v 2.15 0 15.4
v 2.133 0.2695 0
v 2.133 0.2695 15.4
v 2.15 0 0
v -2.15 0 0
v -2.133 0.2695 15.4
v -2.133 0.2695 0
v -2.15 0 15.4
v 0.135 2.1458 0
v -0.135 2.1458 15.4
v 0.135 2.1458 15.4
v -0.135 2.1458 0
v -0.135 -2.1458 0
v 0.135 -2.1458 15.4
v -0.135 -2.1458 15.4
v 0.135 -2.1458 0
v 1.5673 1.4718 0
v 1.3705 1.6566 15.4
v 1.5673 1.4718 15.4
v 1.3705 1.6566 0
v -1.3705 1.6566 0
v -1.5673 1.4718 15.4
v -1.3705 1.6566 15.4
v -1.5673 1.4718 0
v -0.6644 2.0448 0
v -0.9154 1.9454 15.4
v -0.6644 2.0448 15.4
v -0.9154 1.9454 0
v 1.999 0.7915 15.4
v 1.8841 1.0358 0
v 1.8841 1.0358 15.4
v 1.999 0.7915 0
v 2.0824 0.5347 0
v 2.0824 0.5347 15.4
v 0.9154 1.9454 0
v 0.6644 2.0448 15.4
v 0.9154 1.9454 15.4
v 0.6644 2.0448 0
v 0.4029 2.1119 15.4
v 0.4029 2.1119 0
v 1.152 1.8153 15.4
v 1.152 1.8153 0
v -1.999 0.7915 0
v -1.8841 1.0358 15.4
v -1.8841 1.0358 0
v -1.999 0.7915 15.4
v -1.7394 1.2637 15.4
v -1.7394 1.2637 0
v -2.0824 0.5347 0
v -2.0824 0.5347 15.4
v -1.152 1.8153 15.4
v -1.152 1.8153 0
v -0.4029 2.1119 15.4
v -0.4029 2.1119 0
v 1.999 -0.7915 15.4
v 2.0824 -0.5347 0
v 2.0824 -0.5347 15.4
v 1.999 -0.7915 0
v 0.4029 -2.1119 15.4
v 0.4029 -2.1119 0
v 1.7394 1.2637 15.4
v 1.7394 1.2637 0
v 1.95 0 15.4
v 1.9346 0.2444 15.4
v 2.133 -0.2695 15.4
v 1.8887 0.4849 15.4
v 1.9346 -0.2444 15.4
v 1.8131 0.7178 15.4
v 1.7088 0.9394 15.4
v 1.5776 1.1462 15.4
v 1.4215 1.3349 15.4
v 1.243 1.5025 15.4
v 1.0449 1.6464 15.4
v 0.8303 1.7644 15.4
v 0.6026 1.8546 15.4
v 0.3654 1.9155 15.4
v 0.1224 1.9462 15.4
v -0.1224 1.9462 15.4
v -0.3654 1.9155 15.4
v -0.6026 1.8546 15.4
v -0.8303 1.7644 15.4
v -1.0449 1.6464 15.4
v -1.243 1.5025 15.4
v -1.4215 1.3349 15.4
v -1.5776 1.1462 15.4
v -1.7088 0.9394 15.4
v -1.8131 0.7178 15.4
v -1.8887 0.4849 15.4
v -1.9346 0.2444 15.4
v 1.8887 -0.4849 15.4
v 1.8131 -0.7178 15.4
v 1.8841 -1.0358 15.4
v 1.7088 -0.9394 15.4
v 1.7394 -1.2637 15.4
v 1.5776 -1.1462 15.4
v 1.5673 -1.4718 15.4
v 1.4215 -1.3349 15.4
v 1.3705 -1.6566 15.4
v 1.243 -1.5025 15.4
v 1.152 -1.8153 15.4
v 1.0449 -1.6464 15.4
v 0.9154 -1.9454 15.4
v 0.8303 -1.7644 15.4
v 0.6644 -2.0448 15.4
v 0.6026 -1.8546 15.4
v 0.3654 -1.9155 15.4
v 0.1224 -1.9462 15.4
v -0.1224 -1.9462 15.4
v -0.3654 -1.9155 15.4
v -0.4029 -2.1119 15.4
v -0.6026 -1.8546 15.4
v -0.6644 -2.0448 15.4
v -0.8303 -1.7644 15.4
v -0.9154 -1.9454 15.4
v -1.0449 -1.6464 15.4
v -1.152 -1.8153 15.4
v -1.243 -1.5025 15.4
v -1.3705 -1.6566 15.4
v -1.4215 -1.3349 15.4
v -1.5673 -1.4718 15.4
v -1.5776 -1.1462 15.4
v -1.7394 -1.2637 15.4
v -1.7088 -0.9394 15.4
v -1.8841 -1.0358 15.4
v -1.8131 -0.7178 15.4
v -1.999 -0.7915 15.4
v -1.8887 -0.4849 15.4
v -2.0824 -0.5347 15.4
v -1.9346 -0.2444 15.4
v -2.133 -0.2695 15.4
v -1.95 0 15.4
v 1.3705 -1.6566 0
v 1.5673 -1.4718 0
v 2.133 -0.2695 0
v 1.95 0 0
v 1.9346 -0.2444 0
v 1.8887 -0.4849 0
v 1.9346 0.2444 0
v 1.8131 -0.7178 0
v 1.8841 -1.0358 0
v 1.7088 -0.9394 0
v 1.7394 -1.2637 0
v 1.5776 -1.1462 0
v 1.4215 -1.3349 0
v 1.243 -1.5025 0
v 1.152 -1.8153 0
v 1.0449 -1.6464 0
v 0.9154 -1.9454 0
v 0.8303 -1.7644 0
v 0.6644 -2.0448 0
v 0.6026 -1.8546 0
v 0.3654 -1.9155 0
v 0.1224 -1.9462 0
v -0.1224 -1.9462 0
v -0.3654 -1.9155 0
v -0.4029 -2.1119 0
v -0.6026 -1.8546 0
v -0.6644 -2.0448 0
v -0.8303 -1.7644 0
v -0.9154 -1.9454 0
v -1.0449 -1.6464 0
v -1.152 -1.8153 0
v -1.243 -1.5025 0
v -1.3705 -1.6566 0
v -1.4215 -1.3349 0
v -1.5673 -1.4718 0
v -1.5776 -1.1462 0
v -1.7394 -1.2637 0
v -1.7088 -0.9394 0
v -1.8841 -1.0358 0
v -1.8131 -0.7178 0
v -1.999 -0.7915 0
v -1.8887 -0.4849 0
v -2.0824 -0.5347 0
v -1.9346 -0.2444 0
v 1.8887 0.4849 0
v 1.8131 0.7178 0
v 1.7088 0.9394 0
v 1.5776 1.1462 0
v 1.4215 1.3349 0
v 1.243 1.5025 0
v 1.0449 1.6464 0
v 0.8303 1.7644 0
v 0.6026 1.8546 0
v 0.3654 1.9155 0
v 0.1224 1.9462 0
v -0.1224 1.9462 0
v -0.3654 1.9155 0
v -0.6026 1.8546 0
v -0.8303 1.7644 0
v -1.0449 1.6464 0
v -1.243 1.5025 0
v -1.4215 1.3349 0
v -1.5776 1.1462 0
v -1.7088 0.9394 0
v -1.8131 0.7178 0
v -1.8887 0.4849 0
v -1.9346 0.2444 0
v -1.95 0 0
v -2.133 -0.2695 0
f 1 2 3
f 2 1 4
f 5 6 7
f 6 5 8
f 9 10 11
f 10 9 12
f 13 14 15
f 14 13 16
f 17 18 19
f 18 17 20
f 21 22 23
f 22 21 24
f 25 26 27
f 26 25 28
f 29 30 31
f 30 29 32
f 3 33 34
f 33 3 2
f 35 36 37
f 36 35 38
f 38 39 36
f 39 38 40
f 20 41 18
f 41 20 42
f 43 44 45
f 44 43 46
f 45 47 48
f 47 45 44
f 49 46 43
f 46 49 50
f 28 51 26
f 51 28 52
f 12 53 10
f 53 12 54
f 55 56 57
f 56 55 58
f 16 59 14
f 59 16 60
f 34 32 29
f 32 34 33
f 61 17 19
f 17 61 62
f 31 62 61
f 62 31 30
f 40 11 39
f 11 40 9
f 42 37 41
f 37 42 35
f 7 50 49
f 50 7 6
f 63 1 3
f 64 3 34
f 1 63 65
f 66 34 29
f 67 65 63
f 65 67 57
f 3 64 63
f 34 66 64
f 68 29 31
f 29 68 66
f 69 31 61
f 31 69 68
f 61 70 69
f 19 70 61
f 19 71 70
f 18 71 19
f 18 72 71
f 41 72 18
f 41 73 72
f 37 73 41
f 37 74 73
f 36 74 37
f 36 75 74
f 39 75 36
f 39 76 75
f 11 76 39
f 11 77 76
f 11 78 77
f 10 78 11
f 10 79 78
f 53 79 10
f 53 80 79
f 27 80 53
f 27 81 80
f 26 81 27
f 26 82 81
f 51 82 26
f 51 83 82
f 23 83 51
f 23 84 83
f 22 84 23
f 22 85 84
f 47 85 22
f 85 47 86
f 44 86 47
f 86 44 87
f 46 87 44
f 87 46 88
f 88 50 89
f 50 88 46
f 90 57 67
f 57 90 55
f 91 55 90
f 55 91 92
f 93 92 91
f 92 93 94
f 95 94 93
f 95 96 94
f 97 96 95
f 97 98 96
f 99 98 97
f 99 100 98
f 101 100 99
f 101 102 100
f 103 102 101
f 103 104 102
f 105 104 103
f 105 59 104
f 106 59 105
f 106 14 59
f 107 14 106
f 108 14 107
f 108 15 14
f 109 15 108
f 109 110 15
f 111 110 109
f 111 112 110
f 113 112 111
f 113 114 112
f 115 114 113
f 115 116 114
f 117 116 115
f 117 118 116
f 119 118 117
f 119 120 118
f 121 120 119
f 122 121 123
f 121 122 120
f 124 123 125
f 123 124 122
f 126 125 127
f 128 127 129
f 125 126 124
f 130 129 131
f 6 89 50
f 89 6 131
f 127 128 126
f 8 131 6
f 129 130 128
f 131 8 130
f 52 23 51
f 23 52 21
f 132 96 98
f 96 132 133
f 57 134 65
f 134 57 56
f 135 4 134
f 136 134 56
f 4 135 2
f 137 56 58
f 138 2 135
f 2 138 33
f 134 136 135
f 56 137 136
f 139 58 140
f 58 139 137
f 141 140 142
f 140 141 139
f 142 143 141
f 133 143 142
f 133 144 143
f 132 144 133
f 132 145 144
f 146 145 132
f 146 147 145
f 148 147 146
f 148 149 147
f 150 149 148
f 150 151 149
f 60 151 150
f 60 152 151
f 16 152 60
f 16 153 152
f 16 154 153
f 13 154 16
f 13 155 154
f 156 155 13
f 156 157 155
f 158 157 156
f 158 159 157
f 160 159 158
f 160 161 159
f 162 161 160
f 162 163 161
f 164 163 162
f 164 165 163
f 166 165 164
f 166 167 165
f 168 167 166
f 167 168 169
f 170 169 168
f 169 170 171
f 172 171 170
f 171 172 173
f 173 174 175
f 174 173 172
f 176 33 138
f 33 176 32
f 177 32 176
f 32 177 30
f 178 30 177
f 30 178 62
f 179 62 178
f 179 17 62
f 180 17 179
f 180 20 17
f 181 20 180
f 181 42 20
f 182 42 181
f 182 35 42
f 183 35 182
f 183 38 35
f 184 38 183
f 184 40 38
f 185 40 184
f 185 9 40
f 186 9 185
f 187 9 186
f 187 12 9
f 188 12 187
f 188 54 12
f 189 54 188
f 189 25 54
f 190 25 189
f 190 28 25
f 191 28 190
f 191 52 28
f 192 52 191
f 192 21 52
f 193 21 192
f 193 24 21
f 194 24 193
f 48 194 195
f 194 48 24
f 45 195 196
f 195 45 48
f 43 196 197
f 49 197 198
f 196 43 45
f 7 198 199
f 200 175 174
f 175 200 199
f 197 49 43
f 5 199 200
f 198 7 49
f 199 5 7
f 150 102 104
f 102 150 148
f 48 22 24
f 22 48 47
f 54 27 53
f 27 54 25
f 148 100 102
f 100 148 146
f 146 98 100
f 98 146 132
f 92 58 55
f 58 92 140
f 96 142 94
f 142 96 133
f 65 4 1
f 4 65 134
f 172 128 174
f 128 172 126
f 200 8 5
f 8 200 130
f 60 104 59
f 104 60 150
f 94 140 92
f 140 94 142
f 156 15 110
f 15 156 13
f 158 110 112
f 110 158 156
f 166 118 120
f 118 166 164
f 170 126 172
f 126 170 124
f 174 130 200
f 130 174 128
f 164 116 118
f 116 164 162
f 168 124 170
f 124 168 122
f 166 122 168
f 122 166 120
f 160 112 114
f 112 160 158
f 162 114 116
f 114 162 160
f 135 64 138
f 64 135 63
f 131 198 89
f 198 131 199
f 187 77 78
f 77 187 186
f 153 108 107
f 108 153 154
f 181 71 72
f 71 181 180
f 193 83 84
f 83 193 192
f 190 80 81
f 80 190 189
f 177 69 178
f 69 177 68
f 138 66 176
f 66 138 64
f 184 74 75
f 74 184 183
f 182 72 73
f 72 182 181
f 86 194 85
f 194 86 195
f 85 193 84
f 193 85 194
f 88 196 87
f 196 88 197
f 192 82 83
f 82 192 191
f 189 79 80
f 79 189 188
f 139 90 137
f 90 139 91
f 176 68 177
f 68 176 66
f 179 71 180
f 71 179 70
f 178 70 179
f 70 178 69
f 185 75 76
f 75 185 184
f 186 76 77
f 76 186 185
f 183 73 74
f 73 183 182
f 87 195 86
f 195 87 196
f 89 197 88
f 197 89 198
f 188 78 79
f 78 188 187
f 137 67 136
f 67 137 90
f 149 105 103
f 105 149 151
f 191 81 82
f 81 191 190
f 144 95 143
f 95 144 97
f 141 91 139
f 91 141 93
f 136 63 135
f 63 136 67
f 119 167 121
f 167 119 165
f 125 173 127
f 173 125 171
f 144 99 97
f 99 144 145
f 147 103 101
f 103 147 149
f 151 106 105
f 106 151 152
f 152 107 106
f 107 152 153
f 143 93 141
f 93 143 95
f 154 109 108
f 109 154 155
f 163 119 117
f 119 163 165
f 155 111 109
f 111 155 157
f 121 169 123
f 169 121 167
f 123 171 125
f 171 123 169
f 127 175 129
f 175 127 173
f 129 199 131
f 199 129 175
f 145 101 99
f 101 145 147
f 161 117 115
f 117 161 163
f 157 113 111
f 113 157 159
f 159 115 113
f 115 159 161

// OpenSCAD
h=15.4;
od=4.3;
id=3.9;
$fn=50;

difference(){
    cylinder(h=h,d=od);
    cylinder(h=h,d=id);
}
